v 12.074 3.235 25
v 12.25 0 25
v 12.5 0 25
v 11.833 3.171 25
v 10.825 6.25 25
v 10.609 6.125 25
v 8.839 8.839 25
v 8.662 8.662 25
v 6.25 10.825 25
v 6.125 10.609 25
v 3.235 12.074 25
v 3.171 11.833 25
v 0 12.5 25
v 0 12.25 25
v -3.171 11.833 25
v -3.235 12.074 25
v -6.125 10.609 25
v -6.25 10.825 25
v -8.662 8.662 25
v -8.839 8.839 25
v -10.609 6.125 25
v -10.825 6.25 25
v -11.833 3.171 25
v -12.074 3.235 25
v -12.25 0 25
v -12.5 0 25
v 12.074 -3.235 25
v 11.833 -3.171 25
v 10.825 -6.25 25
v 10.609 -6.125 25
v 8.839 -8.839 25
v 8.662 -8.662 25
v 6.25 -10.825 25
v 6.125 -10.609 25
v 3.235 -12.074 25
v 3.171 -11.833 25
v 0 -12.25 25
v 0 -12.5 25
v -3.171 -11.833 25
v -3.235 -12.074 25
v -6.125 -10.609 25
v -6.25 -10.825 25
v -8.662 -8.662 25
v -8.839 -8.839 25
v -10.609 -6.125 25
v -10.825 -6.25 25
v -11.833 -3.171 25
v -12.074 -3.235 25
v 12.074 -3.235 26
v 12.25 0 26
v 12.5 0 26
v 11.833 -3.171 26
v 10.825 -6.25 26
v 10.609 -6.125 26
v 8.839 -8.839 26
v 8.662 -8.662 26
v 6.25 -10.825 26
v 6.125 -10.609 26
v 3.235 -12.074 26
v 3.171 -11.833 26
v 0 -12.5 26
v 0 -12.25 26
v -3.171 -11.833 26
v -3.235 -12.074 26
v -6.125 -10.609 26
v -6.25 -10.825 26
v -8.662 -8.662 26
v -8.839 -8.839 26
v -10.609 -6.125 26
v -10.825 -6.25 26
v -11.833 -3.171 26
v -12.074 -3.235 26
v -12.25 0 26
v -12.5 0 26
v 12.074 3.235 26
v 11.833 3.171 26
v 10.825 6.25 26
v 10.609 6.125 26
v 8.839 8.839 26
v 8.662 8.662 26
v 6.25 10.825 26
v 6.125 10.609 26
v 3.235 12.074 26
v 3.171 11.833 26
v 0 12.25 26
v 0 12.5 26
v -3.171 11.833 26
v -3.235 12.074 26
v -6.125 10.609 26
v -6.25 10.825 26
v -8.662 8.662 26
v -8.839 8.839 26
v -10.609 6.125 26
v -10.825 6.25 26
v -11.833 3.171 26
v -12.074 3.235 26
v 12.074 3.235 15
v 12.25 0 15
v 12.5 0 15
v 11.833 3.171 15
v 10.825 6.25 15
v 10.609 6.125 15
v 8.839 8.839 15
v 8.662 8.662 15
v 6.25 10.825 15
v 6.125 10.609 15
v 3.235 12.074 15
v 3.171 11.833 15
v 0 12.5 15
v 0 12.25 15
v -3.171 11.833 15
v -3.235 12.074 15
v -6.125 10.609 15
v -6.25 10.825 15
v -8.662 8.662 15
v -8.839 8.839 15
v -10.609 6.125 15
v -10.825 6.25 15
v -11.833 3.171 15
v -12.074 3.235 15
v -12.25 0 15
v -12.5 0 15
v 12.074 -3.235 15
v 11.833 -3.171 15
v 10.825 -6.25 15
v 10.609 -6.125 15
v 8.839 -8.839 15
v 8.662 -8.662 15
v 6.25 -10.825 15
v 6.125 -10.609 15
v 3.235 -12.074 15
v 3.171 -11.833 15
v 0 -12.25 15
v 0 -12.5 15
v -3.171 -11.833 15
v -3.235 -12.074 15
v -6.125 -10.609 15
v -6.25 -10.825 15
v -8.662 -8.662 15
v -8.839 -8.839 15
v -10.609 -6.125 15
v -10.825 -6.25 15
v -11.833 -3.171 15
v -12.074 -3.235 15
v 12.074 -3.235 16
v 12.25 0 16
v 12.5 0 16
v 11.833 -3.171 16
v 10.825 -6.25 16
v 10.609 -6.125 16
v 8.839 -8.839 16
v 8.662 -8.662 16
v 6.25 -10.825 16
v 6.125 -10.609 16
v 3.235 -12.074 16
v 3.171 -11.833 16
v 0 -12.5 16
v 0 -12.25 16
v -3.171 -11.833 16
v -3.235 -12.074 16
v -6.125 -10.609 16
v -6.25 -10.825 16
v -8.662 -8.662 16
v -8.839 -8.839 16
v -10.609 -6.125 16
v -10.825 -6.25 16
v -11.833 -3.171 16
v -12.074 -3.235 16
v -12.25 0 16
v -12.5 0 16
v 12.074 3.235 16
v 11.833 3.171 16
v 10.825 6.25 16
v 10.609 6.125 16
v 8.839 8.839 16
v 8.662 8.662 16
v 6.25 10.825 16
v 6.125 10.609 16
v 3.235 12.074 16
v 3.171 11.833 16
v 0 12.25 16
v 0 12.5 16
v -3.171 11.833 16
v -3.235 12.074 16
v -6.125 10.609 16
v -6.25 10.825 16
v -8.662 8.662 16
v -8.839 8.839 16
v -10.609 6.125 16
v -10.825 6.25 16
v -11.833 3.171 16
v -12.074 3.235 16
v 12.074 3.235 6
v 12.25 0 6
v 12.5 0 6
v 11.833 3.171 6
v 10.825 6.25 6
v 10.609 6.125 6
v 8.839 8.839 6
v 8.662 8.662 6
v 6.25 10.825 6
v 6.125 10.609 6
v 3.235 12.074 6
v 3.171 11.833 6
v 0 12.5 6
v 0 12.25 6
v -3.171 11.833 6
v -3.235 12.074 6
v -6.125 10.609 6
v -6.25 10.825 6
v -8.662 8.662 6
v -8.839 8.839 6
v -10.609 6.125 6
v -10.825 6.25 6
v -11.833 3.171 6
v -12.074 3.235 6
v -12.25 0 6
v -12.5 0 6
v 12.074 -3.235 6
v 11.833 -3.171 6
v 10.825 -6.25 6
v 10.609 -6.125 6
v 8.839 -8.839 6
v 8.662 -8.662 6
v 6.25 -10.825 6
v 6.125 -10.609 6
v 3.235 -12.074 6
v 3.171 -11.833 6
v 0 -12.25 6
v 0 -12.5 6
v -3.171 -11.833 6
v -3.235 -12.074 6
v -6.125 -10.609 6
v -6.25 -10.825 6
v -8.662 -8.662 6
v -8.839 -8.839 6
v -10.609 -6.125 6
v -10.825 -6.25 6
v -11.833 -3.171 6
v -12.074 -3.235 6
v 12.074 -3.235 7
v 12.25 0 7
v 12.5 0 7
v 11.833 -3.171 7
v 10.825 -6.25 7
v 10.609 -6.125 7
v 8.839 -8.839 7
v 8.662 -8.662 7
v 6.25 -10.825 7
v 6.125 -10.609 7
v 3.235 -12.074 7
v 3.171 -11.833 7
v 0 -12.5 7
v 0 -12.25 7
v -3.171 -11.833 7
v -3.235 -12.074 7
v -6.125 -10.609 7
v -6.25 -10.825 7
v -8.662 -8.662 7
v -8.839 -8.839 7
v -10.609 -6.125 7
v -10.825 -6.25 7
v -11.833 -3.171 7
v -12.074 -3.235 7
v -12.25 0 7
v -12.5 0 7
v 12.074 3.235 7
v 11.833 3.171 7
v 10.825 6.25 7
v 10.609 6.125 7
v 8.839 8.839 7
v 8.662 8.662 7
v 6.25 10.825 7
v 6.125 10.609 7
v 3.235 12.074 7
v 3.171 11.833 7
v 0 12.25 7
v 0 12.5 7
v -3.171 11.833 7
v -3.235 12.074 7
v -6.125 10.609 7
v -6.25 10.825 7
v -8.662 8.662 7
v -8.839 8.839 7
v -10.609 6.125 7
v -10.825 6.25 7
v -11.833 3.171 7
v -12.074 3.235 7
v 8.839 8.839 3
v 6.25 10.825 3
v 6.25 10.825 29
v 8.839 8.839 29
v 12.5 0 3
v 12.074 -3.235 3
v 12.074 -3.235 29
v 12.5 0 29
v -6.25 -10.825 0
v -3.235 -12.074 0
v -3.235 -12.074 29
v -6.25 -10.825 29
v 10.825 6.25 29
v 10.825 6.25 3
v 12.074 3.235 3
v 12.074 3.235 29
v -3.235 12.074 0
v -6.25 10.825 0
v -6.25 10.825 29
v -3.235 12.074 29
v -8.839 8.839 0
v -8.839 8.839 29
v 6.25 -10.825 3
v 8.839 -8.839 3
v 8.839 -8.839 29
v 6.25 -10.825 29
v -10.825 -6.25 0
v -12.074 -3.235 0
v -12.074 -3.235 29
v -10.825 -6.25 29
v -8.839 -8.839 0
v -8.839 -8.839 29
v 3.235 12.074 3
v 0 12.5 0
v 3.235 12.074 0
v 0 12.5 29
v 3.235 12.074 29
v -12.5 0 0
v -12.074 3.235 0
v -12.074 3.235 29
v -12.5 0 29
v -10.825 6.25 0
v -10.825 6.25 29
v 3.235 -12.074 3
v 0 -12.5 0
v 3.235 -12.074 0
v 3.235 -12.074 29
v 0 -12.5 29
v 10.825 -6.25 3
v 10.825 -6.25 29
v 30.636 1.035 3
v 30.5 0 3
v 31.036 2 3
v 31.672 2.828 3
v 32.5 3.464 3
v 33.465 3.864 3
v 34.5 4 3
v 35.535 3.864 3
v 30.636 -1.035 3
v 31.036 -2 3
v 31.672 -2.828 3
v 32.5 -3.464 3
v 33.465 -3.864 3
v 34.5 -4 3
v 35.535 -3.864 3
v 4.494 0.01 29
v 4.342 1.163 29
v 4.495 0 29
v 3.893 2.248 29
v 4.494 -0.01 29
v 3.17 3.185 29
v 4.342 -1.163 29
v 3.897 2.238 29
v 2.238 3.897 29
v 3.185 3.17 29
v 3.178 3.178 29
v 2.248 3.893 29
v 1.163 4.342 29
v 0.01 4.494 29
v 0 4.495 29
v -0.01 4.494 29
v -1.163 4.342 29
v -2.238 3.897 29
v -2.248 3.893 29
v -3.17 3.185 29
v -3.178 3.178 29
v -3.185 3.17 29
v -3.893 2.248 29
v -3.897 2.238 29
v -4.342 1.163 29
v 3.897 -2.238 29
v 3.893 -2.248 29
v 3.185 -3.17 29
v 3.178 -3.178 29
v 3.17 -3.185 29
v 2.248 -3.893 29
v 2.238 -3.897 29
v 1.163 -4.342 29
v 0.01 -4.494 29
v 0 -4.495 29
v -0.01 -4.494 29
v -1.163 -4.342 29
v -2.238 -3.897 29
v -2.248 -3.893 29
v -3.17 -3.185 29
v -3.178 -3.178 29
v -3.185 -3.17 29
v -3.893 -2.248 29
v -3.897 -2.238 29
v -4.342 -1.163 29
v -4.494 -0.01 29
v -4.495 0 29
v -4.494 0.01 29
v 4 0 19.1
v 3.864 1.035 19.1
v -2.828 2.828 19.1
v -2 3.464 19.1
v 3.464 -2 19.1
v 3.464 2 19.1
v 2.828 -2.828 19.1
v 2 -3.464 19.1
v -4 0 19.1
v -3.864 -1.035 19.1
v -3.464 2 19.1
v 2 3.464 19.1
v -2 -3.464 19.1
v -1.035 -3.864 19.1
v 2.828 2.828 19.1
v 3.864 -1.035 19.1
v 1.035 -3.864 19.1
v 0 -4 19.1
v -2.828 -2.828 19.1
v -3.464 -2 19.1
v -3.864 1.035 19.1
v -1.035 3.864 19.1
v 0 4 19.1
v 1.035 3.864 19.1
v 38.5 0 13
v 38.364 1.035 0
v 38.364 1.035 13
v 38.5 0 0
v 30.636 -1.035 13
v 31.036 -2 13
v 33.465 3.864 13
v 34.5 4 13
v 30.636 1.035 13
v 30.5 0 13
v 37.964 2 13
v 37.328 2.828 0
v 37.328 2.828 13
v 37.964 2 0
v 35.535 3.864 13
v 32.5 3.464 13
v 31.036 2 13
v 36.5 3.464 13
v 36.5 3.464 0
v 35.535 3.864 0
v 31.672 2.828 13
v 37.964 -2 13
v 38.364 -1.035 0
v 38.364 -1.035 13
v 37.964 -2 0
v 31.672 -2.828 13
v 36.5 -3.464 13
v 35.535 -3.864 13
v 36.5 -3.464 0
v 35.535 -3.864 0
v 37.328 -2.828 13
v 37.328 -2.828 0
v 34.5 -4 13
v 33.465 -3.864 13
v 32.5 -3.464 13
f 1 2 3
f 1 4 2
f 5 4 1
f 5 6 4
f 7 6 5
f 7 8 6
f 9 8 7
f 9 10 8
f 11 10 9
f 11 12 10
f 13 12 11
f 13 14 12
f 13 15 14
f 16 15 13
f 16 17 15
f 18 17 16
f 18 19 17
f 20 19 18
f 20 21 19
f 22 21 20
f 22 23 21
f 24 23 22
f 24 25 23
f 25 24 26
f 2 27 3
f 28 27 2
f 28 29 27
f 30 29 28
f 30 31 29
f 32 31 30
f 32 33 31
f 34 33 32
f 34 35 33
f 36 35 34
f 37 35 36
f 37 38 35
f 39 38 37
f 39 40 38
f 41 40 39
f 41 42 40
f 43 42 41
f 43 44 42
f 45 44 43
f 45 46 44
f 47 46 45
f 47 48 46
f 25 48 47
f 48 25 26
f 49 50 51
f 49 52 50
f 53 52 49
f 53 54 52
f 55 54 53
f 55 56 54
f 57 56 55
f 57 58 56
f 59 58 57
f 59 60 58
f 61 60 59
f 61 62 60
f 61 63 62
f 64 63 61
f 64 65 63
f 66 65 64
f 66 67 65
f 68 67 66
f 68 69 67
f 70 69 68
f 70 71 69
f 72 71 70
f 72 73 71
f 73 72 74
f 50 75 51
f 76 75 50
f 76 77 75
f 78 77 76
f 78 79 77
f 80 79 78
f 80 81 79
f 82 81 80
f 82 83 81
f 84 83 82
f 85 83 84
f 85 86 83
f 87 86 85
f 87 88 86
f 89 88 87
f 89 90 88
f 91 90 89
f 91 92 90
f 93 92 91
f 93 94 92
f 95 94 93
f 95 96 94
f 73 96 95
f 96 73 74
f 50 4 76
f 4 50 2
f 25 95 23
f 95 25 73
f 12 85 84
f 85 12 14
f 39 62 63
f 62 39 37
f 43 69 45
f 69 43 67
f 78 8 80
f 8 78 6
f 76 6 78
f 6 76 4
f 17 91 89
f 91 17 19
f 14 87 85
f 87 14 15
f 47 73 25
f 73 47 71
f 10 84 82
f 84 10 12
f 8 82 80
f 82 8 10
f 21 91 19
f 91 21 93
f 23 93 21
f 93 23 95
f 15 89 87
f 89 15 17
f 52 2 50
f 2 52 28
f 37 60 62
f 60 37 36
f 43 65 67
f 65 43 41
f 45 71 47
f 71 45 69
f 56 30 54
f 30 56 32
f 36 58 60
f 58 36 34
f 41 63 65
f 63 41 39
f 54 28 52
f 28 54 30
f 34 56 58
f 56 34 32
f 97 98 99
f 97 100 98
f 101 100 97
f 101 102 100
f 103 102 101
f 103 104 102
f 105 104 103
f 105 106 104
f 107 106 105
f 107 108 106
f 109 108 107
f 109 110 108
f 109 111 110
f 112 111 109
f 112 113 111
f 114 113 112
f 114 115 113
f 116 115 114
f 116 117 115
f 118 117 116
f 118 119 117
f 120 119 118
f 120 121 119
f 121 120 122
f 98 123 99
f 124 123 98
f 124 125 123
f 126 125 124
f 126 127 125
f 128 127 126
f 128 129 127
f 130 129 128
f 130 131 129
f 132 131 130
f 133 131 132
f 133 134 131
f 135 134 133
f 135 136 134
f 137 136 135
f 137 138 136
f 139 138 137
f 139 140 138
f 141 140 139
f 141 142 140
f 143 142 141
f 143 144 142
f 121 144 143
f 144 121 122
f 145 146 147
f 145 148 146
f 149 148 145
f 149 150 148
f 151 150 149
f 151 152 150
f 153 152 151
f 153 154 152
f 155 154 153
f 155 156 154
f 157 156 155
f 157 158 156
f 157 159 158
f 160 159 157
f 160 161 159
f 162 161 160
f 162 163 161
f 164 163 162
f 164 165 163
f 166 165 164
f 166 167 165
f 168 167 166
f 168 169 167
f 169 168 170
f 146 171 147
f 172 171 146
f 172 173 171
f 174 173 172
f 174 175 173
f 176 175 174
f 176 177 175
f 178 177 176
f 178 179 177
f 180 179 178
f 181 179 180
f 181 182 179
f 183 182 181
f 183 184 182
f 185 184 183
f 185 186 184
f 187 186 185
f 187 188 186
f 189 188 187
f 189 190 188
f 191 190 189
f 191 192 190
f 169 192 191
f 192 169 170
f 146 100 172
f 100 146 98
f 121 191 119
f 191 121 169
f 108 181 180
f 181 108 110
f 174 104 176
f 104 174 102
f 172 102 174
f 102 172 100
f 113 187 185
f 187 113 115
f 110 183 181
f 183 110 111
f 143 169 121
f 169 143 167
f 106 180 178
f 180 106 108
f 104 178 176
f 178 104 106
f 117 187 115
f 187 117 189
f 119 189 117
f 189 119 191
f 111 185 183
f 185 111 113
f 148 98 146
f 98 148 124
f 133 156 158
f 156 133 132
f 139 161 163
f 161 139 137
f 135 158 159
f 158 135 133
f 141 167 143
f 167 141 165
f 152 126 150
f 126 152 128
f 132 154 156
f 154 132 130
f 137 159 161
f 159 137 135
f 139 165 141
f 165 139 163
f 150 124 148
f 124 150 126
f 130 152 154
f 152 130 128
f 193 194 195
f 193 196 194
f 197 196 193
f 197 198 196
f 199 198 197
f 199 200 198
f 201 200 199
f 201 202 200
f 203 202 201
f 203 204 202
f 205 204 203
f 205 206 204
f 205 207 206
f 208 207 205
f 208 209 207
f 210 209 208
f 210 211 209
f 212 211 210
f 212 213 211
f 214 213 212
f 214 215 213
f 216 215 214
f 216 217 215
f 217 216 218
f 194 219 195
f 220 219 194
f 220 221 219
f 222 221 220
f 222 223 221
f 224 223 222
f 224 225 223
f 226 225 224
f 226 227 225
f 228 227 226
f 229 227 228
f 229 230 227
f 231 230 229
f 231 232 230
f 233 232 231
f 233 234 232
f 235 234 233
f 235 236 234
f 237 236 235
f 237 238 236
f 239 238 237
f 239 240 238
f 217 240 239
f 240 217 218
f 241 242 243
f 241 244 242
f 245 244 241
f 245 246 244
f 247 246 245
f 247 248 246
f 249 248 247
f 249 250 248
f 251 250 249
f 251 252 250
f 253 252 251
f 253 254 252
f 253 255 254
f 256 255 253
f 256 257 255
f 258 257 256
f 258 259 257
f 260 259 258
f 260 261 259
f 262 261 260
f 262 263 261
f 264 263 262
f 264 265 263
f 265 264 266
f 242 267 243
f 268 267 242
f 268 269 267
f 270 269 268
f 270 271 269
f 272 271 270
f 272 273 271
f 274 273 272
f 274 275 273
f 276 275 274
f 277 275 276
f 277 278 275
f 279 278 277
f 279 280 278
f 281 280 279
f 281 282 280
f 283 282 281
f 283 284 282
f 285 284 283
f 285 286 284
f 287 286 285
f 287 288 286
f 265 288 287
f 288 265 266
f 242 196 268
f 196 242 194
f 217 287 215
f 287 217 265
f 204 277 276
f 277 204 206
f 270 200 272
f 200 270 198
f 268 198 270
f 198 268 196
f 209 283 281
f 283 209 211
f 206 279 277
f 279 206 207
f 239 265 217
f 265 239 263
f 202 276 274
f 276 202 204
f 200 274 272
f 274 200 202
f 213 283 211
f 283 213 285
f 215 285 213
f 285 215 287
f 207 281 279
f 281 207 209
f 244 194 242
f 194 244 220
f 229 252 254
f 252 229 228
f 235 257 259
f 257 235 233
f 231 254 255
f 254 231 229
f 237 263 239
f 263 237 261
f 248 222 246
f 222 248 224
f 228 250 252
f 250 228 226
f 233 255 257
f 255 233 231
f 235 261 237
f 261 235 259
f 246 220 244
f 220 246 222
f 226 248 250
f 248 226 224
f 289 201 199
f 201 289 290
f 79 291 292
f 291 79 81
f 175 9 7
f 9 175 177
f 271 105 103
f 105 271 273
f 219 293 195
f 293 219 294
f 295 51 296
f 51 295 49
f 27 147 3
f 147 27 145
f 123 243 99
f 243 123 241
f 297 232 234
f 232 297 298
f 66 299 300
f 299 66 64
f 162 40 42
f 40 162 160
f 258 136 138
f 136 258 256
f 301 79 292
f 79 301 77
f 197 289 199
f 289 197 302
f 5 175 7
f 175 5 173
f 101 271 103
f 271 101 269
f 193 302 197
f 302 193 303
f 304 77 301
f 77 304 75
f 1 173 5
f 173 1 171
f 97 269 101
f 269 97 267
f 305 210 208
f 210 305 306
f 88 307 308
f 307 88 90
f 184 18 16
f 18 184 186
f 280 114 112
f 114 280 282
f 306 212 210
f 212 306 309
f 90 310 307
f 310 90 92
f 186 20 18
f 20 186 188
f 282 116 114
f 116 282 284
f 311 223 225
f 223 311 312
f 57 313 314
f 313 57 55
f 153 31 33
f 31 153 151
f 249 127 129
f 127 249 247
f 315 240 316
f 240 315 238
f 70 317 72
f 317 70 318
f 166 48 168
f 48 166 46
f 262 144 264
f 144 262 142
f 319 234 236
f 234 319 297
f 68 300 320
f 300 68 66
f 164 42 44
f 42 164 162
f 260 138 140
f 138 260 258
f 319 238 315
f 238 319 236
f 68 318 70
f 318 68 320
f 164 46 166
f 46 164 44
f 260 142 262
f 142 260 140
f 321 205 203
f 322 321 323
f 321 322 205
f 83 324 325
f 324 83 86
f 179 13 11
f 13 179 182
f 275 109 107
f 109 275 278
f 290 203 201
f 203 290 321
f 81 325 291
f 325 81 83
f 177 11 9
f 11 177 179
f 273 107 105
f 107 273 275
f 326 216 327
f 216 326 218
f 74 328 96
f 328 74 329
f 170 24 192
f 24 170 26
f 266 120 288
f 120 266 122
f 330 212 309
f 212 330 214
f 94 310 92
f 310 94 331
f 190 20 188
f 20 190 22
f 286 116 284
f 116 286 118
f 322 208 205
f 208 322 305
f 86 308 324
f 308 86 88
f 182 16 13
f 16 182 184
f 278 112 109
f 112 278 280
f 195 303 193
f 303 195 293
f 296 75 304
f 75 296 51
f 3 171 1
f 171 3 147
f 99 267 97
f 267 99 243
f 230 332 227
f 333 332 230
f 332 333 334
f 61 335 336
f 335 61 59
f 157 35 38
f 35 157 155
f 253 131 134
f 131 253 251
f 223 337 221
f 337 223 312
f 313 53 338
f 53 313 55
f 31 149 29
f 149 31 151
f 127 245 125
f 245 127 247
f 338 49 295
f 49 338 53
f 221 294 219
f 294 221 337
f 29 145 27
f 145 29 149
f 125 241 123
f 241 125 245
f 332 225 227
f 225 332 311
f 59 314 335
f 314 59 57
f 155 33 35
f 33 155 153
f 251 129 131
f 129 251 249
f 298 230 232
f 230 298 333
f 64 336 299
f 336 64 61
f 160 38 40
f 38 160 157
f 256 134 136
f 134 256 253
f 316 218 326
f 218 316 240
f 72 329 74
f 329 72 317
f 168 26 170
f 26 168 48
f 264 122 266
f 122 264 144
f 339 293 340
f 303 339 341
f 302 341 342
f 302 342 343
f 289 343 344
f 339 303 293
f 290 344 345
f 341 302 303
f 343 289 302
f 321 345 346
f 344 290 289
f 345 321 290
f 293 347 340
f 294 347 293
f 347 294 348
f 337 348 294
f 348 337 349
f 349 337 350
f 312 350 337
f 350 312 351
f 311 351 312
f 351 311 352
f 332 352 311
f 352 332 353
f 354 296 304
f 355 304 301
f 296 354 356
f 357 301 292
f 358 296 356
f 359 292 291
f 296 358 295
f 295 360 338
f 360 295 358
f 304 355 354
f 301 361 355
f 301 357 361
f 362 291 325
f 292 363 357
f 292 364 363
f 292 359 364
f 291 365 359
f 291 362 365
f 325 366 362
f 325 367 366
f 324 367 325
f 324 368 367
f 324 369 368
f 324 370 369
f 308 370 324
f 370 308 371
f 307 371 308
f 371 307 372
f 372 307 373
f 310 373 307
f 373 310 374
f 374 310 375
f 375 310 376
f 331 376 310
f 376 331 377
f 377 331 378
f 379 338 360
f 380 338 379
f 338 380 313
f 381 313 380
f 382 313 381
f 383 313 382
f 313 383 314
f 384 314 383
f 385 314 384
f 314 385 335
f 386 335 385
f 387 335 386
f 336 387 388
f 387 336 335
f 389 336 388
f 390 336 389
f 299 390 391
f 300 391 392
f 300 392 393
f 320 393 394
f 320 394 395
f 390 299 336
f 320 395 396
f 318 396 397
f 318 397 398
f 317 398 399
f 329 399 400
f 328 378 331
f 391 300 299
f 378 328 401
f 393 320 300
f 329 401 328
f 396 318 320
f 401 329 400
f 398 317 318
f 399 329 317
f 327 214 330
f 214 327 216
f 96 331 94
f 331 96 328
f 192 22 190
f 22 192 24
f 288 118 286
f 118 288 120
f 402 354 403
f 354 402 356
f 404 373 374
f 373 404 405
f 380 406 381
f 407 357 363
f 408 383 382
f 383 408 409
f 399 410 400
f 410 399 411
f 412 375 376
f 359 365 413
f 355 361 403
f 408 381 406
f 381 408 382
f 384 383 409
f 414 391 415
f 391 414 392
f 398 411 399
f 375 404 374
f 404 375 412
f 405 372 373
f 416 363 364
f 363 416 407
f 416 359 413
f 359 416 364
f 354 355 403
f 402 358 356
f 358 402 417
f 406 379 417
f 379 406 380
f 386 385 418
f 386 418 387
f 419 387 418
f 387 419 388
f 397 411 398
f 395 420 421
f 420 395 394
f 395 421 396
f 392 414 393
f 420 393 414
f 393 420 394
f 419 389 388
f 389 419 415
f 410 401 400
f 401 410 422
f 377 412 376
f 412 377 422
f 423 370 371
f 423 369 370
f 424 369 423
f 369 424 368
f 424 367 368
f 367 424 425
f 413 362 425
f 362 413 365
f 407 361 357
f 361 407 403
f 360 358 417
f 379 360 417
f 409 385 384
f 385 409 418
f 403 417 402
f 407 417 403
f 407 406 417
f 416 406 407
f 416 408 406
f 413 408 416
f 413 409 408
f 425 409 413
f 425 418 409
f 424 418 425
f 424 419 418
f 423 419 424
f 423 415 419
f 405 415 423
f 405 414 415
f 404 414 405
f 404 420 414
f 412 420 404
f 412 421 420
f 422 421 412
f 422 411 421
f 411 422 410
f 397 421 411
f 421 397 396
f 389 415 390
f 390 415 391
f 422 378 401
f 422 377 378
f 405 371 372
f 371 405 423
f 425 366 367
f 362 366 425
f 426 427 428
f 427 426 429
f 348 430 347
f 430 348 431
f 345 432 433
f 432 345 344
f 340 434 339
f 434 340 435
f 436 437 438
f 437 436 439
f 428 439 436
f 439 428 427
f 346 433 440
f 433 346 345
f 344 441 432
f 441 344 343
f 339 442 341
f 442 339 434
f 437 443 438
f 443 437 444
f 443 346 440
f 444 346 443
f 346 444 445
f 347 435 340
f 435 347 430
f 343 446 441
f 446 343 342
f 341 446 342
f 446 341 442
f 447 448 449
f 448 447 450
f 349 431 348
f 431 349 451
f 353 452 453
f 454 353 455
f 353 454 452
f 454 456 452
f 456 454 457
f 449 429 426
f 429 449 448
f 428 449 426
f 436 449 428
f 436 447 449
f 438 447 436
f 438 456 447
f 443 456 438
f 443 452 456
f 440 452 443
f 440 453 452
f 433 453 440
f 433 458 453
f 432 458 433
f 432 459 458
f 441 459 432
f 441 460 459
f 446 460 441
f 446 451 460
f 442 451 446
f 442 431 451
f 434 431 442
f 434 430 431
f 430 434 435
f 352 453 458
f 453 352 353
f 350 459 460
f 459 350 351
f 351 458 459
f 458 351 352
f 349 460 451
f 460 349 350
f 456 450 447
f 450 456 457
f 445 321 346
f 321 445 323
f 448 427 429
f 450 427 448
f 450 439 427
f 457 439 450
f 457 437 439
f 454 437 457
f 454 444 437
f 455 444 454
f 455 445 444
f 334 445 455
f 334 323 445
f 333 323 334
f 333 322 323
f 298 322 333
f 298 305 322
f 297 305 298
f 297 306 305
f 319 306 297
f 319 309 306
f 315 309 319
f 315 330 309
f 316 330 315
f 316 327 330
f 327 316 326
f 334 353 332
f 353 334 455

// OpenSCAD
bigCylinderRadius = 25;
bigCylinderHeight = 26;
smallCylinderRadius = 8;
smallCylinderHeight = 10;
separation=18;
unionHeight = 3;
holeHeight=smallCylinderHeight;
holeRadiusUp=smallCylinderRadius+1;
holeRadiusDown=smallCylinderRadius;

//Global variable
$fn=24; 

rail1YPosition = unionHeight+bigCylinderHeight-4;
rail2YPosition = unionHeight+(bigCylinderHeight/2-1);
rail3YPosition = unionHeight+3;
    

//Big cylinder
difference() {
    translate([0,0,unionHeight])
        cylinder(h=bigCylinderHeight, d1=bigCylinderRadius, d2=bigCylinderRadius);

    //Hole
    translate([0,0,unionHeight+bigCylinderHeight-smallCylinderHeight+0.1])
        cylinder(h=holeHeight, d1=holeRadiusDown, d2=holeRadiusUp);

    // Rail 1
    difference() {
        translate([0,0,rail1YPosition])
            cylinder(h=1, d1=bigCylinderRadius+0.5, d2=bigCylinderRadius+0.5);

        //Hole
        translate([0,0,rail1YPosition])
            cylinder(h=1, d1=bigCylinderRadius-0.5, d2=bigCylinderRadius-0.5);        
    };

    //Rail 2
    difference() {
        translate([0,0,rail2YPosition])
            cylinder(h=1, d1=bigCylinderRadius+0.5, d2=bigCylinderRadius+0.5);

        //Hole
        translate([0,0,rail2YPosition])
            cylinder(h=1, d1=bigCylinderRadius-0.5, d2=bigCylinderRadius-0.5);        
    }

    //Rail 3
    difference() {
        translate([0,0,rail3YPosition])
            cylinder(h=1, d1=bigCylinderRadius+0.5, d2=bigCylinderRadius+0.5);

        //Hole
        translate([0,0,rail3YPosition])
            cylinder(h=1, d1=bigCylinderRadius-0.5, d2=bigCylinderRadius-0.5);        
    }

}

//Small cylinder
translate([(bigCylinderRadius/2)+separation+(smallCylinderRadius/2),0,unionHeight])
    cylinder(h=smallCylinderHeight, d1=smallCylinderRadius, d2=smallCylinderRadius);

//Union
hull() { 
    cylinder(h=unionHeight, d1=bigCylinderRadius, d2=bigCylinderRadius);

    translate([(bigCylinderRadius/2)+separation+(smallCylinderRadius/2),0,0])
        cylinder(h=unionHeight, d1=smallCylinderRadius, d2=smallCylinderRadius);
}
